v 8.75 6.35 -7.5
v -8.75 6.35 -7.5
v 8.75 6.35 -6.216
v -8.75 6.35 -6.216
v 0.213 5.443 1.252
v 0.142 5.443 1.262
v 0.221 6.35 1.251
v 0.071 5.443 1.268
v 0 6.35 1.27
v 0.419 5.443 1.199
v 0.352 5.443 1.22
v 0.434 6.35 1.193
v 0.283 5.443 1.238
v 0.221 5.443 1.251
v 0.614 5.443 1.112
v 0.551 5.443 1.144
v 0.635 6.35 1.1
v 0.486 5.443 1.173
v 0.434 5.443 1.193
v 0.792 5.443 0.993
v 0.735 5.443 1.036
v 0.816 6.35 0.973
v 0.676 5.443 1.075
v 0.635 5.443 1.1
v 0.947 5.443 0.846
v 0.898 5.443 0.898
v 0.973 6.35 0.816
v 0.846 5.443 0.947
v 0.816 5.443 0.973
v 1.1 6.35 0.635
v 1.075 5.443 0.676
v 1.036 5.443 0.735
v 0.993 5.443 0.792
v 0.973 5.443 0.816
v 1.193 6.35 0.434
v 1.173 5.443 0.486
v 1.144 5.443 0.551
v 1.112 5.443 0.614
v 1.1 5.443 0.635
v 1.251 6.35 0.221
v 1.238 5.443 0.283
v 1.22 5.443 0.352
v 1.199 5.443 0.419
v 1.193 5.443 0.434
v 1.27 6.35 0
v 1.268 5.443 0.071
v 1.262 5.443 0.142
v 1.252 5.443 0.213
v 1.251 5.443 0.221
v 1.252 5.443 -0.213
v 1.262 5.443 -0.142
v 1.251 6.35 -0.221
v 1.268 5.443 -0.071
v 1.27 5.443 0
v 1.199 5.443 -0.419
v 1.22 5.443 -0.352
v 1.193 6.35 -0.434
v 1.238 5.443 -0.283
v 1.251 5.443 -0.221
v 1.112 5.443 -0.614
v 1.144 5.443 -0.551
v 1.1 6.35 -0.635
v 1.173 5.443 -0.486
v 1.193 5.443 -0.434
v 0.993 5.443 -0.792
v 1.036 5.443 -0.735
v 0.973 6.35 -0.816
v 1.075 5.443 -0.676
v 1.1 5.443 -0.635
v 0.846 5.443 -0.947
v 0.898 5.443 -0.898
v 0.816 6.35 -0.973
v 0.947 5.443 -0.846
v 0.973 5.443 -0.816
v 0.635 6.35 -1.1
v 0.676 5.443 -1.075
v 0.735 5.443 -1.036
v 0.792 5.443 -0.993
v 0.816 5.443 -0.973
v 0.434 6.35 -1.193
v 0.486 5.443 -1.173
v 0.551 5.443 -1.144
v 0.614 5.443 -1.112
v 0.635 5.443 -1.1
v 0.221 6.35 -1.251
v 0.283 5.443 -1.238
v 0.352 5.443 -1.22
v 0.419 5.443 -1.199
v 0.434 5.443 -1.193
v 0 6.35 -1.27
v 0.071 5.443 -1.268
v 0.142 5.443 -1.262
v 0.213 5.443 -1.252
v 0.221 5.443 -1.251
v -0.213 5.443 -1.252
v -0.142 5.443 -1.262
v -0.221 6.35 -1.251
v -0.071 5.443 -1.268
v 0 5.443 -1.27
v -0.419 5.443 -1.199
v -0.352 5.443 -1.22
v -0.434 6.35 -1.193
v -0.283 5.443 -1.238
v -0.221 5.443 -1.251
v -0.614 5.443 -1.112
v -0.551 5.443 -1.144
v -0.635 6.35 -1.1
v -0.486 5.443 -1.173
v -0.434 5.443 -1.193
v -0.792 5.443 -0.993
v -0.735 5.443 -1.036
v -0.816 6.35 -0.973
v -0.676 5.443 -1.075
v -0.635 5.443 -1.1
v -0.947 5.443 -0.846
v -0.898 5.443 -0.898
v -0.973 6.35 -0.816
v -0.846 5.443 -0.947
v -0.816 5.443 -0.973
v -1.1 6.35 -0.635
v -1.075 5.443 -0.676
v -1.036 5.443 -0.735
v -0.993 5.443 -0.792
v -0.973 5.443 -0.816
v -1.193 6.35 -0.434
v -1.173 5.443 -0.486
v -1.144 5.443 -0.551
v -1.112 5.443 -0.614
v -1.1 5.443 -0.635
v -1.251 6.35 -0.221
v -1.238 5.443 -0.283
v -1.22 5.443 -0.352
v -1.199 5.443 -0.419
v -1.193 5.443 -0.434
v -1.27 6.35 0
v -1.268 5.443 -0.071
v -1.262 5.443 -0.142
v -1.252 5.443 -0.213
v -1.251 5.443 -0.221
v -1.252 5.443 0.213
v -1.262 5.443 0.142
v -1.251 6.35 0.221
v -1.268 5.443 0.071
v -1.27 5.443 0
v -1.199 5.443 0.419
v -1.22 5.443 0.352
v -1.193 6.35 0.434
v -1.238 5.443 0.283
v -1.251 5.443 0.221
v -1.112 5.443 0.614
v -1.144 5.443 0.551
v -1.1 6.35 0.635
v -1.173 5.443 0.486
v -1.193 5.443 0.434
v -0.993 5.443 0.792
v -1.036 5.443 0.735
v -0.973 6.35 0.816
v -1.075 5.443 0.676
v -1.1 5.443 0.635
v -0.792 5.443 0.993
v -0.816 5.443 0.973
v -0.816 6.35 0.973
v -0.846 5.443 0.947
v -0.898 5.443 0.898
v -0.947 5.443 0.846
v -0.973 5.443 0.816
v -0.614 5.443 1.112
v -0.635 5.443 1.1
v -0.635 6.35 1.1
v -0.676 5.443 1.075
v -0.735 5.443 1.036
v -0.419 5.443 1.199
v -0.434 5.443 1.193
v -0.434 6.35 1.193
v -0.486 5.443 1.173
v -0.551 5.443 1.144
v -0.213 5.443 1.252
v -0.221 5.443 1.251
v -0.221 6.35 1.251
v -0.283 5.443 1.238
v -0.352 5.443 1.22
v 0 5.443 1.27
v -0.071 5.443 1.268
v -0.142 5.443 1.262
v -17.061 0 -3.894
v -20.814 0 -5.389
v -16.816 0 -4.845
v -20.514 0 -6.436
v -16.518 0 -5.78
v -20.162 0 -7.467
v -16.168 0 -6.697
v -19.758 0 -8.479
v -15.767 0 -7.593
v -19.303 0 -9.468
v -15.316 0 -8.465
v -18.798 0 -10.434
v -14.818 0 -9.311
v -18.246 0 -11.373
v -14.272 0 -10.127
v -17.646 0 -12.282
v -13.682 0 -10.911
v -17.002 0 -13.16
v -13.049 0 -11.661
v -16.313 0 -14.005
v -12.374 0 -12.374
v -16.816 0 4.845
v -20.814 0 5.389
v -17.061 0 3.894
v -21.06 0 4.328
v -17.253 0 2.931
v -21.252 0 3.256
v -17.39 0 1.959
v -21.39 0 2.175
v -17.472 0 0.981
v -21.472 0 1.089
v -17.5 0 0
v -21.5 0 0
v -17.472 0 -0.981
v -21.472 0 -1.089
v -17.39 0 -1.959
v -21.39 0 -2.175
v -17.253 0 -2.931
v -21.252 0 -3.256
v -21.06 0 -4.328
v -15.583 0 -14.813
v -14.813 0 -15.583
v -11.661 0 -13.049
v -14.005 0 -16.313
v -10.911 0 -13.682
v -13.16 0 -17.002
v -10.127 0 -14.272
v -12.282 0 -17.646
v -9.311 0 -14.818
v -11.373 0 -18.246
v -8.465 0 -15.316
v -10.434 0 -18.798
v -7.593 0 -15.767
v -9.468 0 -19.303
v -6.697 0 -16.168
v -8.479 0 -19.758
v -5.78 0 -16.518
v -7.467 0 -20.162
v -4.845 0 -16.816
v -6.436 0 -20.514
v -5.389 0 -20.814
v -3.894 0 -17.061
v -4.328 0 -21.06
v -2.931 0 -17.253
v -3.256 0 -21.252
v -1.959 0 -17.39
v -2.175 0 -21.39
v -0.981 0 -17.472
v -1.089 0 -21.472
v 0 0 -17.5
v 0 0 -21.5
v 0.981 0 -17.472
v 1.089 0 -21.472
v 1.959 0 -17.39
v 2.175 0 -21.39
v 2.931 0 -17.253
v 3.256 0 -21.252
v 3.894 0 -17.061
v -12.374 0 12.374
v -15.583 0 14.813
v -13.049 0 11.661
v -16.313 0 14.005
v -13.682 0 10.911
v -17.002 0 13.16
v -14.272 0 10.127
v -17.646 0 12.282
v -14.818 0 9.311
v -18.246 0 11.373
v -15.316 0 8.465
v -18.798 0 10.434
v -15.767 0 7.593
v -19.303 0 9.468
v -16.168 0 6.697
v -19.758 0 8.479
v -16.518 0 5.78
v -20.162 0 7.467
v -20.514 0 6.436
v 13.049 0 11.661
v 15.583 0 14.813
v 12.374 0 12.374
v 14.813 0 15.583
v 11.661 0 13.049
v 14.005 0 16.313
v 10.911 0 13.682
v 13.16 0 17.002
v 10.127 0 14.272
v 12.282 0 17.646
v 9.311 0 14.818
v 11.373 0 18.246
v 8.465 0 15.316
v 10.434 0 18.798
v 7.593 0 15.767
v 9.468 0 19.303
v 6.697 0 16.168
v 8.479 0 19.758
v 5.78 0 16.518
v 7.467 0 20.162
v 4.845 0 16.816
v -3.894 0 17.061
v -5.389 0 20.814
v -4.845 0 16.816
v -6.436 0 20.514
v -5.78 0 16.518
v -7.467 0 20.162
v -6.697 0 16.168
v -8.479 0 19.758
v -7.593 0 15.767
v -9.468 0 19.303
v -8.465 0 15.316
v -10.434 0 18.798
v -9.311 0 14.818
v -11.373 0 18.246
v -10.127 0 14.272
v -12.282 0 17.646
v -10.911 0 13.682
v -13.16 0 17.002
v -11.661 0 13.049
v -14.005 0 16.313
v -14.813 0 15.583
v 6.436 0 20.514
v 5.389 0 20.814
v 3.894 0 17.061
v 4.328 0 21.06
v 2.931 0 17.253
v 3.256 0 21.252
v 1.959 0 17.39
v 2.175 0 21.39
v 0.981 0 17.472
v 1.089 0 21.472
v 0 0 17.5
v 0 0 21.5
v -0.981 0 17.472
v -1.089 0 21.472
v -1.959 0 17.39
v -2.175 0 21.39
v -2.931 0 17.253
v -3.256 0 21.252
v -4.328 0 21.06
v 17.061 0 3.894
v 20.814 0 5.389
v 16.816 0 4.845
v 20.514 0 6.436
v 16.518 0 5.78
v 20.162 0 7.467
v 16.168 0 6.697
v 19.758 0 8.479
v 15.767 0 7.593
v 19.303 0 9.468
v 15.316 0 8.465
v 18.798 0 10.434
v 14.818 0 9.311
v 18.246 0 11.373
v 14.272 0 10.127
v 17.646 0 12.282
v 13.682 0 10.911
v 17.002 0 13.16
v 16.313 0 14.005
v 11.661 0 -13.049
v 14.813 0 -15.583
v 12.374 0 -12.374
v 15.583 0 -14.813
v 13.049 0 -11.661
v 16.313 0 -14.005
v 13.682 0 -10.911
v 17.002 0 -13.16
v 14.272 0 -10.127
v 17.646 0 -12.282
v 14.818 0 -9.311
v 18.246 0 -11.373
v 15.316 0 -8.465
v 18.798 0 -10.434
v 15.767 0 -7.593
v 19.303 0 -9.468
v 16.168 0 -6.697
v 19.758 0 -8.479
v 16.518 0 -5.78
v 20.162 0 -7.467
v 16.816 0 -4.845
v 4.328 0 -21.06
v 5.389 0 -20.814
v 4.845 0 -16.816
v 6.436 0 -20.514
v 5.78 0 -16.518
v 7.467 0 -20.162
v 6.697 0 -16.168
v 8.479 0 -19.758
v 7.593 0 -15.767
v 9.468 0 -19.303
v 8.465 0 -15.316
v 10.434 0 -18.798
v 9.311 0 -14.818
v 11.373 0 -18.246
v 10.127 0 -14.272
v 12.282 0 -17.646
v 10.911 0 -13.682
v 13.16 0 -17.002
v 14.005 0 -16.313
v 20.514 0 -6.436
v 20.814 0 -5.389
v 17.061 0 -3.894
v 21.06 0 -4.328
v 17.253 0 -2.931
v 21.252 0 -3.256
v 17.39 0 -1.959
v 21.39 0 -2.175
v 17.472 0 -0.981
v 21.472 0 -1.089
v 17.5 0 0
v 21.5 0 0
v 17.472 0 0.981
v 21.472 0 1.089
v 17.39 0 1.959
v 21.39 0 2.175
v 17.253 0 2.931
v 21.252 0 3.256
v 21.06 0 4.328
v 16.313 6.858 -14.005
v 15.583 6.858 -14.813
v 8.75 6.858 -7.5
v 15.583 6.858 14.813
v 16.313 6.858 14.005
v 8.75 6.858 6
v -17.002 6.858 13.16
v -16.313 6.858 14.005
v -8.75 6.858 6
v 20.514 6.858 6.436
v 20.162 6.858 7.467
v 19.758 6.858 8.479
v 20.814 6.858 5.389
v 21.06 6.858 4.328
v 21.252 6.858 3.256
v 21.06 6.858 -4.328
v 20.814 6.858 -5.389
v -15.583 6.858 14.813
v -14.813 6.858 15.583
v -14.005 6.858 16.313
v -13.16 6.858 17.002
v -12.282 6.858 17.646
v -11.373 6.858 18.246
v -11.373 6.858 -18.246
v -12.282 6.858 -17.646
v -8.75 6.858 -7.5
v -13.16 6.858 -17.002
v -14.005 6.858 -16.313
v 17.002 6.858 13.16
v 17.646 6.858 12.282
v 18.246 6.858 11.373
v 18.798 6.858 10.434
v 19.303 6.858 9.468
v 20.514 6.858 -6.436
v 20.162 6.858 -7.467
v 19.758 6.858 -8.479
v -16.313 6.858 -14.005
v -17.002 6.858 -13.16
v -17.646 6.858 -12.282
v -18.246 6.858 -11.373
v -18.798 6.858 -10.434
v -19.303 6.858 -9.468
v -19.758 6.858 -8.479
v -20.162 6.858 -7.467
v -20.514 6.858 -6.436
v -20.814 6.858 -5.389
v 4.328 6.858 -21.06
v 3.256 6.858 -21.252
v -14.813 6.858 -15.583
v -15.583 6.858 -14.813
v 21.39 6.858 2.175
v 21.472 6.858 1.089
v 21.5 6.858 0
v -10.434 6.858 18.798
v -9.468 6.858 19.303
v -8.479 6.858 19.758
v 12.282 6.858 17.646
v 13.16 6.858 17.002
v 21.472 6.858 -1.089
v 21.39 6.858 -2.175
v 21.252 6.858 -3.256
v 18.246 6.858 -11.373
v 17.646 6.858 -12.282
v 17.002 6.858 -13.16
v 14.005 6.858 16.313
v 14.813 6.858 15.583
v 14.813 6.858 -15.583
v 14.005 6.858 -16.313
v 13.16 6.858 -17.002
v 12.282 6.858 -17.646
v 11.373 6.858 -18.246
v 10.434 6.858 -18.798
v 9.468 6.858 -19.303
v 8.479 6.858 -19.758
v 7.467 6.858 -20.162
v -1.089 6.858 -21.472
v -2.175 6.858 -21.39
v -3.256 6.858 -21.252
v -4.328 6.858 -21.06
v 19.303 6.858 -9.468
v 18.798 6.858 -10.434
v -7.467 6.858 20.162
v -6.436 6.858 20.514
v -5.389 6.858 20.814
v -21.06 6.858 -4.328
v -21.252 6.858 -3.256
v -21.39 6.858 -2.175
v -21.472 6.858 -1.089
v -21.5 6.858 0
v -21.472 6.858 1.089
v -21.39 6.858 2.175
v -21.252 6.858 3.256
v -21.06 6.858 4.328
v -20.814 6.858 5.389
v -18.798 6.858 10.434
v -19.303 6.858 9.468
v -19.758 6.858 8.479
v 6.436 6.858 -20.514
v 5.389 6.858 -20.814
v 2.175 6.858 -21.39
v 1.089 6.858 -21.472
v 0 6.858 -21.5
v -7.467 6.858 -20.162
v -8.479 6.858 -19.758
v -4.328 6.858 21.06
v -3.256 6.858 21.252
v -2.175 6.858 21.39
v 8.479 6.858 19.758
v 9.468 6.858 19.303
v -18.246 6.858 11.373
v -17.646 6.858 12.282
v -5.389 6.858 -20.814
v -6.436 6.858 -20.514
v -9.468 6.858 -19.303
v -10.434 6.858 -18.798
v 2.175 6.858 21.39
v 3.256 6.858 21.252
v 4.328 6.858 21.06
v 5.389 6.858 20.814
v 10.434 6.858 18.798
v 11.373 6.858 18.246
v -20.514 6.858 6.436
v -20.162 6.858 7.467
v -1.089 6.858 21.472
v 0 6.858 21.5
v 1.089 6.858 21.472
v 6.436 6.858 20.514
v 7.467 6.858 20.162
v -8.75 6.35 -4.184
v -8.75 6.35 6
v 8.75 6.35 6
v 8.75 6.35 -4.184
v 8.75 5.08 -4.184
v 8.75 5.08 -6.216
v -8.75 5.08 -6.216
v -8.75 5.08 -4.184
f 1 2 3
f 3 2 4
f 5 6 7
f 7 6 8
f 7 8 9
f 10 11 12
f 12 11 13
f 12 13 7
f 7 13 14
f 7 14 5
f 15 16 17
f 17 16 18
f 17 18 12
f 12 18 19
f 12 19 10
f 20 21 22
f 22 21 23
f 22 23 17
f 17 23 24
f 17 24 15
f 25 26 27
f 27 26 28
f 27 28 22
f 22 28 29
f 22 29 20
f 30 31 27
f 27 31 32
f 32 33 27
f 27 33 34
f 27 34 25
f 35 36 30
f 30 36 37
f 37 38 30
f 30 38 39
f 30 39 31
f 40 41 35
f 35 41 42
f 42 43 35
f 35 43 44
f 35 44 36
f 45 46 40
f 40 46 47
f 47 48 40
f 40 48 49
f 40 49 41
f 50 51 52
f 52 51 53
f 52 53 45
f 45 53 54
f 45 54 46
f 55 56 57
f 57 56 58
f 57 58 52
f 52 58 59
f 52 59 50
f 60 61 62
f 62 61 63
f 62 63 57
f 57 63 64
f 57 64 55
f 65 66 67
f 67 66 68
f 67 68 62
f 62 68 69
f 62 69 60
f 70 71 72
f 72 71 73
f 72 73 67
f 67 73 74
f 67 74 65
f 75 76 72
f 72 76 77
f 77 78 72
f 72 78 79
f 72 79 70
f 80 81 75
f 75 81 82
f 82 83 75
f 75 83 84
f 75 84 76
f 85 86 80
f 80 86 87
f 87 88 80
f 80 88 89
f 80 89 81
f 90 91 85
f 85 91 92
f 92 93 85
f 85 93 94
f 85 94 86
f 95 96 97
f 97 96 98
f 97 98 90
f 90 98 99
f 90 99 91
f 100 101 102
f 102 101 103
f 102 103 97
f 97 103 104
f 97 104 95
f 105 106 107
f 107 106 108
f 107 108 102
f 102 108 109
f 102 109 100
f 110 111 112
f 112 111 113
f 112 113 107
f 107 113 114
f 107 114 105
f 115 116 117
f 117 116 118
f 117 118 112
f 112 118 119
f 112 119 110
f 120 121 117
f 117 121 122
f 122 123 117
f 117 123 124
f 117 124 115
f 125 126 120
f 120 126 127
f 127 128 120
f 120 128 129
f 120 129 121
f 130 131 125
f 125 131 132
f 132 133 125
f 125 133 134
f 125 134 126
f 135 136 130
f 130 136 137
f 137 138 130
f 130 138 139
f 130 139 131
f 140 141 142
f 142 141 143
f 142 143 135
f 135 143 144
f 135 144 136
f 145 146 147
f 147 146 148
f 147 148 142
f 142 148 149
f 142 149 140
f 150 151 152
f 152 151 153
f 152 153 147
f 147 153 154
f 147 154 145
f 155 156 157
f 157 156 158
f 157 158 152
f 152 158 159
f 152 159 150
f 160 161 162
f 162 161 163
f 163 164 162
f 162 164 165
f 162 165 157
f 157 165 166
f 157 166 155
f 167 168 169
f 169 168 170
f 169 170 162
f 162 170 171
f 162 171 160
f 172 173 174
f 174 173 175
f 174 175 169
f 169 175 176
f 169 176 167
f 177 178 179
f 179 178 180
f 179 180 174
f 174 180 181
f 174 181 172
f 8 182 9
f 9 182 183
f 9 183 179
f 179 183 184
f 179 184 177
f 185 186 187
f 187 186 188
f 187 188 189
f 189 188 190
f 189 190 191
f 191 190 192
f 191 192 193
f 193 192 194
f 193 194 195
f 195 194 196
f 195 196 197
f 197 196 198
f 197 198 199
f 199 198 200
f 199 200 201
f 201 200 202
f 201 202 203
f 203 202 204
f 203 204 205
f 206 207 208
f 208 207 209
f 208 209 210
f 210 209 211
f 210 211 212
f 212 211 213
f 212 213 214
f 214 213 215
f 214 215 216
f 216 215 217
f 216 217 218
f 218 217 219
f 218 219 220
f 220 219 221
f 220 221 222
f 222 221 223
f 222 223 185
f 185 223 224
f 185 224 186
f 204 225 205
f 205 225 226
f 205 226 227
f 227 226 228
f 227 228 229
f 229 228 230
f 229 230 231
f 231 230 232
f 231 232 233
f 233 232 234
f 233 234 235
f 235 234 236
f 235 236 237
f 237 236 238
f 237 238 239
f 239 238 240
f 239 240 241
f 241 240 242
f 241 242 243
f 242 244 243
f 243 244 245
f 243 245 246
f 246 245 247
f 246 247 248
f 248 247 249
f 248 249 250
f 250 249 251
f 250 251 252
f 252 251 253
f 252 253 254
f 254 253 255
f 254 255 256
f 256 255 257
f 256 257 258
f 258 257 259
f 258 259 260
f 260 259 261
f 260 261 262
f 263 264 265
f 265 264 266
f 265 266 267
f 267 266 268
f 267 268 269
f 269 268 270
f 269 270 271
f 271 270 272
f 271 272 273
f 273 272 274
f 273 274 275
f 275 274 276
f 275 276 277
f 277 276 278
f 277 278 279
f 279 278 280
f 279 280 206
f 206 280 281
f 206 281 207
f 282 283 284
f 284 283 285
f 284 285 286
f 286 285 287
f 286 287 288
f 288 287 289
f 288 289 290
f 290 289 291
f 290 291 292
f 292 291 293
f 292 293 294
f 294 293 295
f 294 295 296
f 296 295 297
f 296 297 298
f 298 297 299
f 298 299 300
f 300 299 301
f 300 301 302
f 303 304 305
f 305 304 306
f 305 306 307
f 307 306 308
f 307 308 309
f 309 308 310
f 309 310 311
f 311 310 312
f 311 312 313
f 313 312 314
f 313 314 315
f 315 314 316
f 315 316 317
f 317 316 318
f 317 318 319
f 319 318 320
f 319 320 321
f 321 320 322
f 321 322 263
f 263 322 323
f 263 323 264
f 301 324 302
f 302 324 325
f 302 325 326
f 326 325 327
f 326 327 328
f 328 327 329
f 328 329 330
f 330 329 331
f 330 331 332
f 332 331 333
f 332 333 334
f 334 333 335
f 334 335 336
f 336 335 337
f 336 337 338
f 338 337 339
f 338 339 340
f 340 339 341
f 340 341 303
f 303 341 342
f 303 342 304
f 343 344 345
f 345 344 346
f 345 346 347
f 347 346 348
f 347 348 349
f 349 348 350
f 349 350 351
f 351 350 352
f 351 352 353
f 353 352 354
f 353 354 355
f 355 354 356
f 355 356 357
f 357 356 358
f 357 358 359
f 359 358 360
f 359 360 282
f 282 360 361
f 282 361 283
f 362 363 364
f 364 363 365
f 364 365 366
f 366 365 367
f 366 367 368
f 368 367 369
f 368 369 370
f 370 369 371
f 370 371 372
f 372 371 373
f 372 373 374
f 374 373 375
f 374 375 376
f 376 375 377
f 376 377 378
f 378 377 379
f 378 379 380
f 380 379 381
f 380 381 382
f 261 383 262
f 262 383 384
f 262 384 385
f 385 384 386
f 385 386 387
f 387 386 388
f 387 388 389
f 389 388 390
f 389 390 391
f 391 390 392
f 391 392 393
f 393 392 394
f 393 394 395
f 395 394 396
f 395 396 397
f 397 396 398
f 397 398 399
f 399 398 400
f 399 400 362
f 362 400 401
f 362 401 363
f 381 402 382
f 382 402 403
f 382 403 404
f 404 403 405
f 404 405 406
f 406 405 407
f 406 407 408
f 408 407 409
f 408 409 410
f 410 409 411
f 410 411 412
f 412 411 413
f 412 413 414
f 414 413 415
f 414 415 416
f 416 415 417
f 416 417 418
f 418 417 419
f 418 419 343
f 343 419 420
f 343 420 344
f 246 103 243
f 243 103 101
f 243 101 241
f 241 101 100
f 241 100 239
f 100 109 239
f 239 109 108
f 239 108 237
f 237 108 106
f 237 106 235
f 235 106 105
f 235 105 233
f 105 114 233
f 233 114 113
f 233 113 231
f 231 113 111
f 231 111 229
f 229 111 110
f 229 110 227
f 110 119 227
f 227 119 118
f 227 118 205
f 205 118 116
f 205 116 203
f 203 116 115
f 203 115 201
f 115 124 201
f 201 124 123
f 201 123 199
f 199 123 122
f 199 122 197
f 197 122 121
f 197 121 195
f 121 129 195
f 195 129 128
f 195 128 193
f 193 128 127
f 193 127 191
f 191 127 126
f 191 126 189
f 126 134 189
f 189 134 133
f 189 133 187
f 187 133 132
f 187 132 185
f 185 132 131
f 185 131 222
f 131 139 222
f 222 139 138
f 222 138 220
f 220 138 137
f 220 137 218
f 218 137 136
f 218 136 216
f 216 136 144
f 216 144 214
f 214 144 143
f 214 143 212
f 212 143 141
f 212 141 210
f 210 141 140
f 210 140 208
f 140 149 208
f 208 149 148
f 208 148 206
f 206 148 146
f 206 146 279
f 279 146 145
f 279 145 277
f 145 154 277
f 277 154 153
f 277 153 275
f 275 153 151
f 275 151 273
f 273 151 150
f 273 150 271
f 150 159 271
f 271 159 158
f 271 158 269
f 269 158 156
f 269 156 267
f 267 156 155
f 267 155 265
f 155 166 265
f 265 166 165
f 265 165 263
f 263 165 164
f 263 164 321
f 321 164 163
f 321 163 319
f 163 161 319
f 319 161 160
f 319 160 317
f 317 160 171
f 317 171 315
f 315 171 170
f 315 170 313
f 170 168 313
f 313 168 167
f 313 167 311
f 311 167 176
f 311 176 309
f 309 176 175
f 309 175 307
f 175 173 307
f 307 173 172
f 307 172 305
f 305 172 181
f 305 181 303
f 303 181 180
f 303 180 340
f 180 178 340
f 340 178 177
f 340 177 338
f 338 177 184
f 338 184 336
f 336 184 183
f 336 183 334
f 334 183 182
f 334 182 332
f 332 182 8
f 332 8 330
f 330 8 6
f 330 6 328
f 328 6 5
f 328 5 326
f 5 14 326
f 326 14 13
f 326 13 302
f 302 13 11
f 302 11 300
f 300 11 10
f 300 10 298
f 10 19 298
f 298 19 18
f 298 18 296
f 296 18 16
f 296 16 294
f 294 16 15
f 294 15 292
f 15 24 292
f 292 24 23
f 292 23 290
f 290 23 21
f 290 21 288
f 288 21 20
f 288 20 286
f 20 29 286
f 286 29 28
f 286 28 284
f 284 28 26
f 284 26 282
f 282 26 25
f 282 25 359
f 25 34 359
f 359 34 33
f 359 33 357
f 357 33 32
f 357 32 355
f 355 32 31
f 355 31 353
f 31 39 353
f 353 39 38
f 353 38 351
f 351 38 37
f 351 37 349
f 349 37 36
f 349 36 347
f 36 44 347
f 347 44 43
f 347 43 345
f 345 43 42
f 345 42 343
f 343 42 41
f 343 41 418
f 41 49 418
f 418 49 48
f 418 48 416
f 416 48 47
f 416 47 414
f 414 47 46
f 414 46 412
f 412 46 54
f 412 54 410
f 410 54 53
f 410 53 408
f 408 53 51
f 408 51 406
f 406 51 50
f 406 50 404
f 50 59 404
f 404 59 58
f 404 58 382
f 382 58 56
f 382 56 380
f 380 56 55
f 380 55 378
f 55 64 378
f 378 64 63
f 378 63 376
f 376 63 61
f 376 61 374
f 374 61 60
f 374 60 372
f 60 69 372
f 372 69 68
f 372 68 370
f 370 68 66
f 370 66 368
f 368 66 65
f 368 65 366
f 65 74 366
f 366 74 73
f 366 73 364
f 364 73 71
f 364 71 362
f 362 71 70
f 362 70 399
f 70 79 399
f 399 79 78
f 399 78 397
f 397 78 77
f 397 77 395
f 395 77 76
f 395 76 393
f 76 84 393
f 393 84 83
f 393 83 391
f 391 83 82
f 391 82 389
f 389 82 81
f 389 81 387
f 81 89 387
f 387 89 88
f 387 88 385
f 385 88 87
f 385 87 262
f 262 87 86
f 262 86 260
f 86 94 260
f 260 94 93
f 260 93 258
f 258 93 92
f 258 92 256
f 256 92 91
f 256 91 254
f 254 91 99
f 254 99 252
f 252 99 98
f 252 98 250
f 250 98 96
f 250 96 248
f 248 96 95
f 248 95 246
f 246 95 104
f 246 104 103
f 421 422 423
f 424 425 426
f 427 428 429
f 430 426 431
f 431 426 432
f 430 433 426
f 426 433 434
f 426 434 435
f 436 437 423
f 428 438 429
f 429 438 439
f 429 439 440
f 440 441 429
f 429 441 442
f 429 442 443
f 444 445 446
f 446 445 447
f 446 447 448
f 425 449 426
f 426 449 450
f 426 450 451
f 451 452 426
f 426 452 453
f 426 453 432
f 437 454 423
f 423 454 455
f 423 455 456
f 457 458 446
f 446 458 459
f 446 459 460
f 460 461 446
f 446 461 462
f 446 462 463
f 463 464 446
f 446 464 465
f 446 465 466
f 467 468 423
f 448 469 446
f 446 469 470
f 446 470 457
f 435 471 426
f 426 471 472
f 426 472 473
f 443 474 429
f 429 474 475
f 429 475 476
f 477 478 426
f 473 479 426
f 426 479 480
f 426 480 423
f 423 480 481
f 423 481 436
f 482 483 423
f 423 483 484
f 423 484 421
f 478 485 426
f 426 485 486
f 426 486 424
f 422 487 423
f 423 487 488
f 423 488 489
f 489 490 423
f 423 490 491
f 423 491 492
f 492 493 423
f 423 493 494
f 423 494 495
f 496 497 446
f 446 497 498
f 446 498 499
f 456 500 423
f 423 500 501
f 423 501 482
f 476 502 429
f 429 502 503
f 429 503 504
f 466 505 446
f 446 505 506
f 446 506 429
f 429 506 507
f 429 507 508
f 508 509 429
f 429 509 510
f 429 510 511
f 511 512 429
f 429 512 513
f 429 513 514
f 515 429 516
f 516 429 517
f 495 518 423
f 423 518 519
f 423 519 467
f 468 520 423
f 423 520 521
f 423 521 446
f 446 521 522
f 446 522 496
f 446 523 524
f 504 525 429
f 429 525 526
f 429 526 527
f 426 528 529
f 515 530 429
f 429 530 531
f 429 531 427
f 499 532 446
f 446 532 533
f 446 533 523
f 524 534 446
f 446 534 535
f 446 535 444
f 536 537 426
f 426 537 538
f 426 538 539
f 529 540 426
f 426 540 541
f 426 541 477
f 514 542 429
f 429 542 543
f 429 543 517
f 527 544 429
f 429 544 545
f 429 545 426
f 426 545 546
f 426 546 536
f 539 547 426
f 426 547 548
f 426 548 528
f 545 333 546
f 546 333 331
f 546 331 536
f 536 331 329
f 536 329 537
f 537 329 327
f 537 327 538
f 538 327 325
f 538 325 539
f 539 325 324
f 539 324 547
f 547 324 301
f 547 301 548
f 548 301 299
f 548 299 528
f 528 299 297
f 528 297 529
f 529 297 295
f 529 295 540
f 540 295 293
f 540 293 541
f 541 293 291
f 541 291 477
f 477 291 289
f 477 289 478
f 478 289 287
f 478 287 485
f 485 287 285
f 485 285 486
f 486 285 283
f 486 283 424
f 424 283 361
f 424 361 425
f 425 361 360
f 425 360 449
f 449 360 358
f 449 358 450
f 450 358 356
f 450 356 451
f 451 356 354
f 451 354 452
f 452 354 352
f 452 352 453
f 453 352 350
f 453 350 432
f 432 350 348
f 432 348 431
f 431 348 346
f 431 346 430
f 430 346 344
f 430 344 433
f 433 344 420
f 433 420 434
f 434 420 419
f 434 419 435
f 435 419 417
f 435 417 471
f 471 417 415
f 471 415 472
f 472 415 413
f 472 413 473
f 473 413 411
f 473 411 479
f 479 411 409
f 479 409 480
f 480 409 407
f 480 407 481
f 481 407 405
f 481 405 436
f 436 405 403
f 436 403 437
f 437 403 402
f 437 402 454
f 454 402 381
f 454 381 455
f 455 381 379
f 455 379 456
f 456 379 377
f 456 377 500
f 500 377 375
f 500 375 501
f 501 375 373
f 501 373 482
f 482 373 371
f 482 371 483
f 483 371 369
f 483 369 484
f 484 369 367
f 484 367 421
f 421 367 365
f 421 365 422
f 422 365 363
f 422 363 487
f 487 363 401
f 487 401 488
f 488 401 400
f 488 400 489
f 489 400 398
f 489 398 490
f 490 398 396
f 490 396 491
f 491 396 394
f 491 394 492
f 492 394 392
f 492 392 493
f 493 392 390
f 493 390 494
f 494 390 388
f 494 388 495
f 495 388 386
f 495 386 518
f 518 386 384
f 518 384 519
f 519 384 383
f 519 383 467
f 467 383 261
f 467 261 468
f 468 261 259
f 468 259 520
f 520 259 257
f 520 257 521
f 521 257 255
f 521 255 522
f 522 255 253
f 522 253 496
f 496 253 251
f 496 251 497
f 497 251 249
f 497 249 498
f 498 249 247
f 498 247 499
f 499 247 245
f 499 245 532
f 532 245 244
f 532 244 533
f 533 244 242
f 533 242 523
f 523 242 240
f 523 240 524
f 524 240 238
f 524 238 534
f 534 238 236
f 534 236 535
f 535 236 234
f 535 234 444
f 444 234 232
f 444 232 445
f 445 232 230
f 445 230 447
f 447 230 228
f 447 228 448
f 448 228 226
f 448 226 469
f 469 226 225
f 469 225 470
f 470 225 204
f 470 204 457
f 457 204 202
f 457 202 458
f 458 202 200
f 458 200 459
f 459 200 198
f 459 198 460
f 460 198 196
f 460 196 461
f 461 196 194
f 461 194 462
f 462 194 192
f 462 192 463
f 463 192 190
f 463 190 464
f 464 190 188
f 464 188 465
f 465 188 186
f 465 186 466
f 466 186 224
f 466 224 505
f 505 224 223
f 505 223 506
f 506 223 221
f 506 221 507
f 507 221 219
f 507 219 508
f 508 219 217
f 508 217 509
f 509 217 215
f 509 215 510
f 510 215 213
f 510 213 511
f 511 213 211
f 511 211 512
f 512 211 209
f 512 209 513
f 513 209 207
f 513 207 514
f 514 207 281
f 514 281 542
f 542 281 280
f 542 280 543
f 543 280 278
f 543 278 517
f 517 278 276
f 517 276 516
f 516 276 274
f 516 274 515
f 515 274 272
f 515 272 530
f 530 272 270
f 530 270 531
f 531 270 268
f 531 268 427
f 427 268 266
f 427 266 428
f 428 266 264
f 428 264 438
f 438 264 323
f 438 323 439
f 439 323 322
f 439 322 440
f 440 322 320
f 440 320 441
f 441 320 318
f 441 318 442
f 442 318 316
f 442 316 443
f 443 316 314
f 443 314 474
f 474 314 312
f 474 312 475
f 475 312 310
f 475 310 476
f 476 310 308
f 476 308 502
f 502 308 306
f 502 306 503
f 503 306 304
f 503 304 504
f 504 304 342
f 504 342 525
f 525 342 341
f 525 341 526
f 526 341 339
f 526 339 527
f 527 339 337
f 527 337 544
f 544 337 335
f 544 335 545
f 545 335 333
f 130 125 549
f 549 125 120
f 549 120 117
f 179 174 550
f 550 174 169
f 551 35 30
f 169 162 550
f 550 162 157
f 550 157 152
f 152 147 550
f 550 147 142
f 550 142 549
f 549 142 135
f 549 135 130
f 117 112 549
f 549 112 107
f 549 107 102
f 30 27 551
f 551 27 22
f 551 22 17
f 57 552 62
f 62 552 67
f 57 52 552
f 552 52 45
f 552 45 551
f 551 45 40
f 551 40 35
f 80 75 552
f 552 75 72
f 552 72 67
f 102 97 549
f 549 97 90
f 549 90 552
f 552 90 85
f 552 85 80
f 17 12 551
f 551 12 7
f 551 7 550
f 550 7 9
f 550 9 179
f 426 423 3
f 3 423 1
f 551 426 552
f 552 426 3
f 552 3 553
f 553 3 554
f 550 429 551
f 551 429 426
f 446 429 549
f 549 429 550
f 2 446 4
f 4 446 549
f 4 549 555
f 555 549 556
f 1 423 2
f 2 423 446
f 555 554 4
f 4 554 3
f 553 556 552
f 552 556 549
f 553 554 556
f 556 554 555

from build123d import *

# Parameters (mm, degrees)
SKETCH5_W          = 17.5
SKETCH5_H          = 13.5
CUT_EXTRUDE1_DEPTH = 6.35
SKETCH6_W          = 17.5
SKETCH6_H          = 2.032
CUT_EXTRUDE2_DEPTH = 10.16


with BuildPart() as part:
    # Sketch3 → Revolve1 (revolve)
    with BuildSketch(Plane.XY):
        Polygon((17.5, 0), (1.27, 5.442857143), (1.27, 6.858), (21.5, 6.858), (21.5, 0), align=None)
    revolve(axis=Axis((0, 0, 0), (0, -1, 0)))

    # Sketch5 → Cut-Extrude1 (cut)
    with BuildSketch(Plane(origin=(0, 12.7, 0), x_dir=(1, 0, 0), z_dir=(0, 1, 0))):
        with Locations((0, 0.75)):
            Rectangle(SKETCH5_W, SKETCH5_H)
    extrude(amount=-CUT_EXTRUDE1_DEPTH, mode=Mode.SUBTRACT)

    # Sketch6 → Cut-Extrude2 (cut)
    with BuildSketch(Plane(origin=(0, 15.24, 0), x_dir=(1, 0, 0), z_dir=(0, 1, 0))):
        with Locations((0, 5.2)):
            Rectangle(SKETCH6_W, SKETCH6_H)
    extrude(amount=-CUT_EXTRUDE2_DEPTH, mode=Mode.SUBTRACT)


solid = part.part
